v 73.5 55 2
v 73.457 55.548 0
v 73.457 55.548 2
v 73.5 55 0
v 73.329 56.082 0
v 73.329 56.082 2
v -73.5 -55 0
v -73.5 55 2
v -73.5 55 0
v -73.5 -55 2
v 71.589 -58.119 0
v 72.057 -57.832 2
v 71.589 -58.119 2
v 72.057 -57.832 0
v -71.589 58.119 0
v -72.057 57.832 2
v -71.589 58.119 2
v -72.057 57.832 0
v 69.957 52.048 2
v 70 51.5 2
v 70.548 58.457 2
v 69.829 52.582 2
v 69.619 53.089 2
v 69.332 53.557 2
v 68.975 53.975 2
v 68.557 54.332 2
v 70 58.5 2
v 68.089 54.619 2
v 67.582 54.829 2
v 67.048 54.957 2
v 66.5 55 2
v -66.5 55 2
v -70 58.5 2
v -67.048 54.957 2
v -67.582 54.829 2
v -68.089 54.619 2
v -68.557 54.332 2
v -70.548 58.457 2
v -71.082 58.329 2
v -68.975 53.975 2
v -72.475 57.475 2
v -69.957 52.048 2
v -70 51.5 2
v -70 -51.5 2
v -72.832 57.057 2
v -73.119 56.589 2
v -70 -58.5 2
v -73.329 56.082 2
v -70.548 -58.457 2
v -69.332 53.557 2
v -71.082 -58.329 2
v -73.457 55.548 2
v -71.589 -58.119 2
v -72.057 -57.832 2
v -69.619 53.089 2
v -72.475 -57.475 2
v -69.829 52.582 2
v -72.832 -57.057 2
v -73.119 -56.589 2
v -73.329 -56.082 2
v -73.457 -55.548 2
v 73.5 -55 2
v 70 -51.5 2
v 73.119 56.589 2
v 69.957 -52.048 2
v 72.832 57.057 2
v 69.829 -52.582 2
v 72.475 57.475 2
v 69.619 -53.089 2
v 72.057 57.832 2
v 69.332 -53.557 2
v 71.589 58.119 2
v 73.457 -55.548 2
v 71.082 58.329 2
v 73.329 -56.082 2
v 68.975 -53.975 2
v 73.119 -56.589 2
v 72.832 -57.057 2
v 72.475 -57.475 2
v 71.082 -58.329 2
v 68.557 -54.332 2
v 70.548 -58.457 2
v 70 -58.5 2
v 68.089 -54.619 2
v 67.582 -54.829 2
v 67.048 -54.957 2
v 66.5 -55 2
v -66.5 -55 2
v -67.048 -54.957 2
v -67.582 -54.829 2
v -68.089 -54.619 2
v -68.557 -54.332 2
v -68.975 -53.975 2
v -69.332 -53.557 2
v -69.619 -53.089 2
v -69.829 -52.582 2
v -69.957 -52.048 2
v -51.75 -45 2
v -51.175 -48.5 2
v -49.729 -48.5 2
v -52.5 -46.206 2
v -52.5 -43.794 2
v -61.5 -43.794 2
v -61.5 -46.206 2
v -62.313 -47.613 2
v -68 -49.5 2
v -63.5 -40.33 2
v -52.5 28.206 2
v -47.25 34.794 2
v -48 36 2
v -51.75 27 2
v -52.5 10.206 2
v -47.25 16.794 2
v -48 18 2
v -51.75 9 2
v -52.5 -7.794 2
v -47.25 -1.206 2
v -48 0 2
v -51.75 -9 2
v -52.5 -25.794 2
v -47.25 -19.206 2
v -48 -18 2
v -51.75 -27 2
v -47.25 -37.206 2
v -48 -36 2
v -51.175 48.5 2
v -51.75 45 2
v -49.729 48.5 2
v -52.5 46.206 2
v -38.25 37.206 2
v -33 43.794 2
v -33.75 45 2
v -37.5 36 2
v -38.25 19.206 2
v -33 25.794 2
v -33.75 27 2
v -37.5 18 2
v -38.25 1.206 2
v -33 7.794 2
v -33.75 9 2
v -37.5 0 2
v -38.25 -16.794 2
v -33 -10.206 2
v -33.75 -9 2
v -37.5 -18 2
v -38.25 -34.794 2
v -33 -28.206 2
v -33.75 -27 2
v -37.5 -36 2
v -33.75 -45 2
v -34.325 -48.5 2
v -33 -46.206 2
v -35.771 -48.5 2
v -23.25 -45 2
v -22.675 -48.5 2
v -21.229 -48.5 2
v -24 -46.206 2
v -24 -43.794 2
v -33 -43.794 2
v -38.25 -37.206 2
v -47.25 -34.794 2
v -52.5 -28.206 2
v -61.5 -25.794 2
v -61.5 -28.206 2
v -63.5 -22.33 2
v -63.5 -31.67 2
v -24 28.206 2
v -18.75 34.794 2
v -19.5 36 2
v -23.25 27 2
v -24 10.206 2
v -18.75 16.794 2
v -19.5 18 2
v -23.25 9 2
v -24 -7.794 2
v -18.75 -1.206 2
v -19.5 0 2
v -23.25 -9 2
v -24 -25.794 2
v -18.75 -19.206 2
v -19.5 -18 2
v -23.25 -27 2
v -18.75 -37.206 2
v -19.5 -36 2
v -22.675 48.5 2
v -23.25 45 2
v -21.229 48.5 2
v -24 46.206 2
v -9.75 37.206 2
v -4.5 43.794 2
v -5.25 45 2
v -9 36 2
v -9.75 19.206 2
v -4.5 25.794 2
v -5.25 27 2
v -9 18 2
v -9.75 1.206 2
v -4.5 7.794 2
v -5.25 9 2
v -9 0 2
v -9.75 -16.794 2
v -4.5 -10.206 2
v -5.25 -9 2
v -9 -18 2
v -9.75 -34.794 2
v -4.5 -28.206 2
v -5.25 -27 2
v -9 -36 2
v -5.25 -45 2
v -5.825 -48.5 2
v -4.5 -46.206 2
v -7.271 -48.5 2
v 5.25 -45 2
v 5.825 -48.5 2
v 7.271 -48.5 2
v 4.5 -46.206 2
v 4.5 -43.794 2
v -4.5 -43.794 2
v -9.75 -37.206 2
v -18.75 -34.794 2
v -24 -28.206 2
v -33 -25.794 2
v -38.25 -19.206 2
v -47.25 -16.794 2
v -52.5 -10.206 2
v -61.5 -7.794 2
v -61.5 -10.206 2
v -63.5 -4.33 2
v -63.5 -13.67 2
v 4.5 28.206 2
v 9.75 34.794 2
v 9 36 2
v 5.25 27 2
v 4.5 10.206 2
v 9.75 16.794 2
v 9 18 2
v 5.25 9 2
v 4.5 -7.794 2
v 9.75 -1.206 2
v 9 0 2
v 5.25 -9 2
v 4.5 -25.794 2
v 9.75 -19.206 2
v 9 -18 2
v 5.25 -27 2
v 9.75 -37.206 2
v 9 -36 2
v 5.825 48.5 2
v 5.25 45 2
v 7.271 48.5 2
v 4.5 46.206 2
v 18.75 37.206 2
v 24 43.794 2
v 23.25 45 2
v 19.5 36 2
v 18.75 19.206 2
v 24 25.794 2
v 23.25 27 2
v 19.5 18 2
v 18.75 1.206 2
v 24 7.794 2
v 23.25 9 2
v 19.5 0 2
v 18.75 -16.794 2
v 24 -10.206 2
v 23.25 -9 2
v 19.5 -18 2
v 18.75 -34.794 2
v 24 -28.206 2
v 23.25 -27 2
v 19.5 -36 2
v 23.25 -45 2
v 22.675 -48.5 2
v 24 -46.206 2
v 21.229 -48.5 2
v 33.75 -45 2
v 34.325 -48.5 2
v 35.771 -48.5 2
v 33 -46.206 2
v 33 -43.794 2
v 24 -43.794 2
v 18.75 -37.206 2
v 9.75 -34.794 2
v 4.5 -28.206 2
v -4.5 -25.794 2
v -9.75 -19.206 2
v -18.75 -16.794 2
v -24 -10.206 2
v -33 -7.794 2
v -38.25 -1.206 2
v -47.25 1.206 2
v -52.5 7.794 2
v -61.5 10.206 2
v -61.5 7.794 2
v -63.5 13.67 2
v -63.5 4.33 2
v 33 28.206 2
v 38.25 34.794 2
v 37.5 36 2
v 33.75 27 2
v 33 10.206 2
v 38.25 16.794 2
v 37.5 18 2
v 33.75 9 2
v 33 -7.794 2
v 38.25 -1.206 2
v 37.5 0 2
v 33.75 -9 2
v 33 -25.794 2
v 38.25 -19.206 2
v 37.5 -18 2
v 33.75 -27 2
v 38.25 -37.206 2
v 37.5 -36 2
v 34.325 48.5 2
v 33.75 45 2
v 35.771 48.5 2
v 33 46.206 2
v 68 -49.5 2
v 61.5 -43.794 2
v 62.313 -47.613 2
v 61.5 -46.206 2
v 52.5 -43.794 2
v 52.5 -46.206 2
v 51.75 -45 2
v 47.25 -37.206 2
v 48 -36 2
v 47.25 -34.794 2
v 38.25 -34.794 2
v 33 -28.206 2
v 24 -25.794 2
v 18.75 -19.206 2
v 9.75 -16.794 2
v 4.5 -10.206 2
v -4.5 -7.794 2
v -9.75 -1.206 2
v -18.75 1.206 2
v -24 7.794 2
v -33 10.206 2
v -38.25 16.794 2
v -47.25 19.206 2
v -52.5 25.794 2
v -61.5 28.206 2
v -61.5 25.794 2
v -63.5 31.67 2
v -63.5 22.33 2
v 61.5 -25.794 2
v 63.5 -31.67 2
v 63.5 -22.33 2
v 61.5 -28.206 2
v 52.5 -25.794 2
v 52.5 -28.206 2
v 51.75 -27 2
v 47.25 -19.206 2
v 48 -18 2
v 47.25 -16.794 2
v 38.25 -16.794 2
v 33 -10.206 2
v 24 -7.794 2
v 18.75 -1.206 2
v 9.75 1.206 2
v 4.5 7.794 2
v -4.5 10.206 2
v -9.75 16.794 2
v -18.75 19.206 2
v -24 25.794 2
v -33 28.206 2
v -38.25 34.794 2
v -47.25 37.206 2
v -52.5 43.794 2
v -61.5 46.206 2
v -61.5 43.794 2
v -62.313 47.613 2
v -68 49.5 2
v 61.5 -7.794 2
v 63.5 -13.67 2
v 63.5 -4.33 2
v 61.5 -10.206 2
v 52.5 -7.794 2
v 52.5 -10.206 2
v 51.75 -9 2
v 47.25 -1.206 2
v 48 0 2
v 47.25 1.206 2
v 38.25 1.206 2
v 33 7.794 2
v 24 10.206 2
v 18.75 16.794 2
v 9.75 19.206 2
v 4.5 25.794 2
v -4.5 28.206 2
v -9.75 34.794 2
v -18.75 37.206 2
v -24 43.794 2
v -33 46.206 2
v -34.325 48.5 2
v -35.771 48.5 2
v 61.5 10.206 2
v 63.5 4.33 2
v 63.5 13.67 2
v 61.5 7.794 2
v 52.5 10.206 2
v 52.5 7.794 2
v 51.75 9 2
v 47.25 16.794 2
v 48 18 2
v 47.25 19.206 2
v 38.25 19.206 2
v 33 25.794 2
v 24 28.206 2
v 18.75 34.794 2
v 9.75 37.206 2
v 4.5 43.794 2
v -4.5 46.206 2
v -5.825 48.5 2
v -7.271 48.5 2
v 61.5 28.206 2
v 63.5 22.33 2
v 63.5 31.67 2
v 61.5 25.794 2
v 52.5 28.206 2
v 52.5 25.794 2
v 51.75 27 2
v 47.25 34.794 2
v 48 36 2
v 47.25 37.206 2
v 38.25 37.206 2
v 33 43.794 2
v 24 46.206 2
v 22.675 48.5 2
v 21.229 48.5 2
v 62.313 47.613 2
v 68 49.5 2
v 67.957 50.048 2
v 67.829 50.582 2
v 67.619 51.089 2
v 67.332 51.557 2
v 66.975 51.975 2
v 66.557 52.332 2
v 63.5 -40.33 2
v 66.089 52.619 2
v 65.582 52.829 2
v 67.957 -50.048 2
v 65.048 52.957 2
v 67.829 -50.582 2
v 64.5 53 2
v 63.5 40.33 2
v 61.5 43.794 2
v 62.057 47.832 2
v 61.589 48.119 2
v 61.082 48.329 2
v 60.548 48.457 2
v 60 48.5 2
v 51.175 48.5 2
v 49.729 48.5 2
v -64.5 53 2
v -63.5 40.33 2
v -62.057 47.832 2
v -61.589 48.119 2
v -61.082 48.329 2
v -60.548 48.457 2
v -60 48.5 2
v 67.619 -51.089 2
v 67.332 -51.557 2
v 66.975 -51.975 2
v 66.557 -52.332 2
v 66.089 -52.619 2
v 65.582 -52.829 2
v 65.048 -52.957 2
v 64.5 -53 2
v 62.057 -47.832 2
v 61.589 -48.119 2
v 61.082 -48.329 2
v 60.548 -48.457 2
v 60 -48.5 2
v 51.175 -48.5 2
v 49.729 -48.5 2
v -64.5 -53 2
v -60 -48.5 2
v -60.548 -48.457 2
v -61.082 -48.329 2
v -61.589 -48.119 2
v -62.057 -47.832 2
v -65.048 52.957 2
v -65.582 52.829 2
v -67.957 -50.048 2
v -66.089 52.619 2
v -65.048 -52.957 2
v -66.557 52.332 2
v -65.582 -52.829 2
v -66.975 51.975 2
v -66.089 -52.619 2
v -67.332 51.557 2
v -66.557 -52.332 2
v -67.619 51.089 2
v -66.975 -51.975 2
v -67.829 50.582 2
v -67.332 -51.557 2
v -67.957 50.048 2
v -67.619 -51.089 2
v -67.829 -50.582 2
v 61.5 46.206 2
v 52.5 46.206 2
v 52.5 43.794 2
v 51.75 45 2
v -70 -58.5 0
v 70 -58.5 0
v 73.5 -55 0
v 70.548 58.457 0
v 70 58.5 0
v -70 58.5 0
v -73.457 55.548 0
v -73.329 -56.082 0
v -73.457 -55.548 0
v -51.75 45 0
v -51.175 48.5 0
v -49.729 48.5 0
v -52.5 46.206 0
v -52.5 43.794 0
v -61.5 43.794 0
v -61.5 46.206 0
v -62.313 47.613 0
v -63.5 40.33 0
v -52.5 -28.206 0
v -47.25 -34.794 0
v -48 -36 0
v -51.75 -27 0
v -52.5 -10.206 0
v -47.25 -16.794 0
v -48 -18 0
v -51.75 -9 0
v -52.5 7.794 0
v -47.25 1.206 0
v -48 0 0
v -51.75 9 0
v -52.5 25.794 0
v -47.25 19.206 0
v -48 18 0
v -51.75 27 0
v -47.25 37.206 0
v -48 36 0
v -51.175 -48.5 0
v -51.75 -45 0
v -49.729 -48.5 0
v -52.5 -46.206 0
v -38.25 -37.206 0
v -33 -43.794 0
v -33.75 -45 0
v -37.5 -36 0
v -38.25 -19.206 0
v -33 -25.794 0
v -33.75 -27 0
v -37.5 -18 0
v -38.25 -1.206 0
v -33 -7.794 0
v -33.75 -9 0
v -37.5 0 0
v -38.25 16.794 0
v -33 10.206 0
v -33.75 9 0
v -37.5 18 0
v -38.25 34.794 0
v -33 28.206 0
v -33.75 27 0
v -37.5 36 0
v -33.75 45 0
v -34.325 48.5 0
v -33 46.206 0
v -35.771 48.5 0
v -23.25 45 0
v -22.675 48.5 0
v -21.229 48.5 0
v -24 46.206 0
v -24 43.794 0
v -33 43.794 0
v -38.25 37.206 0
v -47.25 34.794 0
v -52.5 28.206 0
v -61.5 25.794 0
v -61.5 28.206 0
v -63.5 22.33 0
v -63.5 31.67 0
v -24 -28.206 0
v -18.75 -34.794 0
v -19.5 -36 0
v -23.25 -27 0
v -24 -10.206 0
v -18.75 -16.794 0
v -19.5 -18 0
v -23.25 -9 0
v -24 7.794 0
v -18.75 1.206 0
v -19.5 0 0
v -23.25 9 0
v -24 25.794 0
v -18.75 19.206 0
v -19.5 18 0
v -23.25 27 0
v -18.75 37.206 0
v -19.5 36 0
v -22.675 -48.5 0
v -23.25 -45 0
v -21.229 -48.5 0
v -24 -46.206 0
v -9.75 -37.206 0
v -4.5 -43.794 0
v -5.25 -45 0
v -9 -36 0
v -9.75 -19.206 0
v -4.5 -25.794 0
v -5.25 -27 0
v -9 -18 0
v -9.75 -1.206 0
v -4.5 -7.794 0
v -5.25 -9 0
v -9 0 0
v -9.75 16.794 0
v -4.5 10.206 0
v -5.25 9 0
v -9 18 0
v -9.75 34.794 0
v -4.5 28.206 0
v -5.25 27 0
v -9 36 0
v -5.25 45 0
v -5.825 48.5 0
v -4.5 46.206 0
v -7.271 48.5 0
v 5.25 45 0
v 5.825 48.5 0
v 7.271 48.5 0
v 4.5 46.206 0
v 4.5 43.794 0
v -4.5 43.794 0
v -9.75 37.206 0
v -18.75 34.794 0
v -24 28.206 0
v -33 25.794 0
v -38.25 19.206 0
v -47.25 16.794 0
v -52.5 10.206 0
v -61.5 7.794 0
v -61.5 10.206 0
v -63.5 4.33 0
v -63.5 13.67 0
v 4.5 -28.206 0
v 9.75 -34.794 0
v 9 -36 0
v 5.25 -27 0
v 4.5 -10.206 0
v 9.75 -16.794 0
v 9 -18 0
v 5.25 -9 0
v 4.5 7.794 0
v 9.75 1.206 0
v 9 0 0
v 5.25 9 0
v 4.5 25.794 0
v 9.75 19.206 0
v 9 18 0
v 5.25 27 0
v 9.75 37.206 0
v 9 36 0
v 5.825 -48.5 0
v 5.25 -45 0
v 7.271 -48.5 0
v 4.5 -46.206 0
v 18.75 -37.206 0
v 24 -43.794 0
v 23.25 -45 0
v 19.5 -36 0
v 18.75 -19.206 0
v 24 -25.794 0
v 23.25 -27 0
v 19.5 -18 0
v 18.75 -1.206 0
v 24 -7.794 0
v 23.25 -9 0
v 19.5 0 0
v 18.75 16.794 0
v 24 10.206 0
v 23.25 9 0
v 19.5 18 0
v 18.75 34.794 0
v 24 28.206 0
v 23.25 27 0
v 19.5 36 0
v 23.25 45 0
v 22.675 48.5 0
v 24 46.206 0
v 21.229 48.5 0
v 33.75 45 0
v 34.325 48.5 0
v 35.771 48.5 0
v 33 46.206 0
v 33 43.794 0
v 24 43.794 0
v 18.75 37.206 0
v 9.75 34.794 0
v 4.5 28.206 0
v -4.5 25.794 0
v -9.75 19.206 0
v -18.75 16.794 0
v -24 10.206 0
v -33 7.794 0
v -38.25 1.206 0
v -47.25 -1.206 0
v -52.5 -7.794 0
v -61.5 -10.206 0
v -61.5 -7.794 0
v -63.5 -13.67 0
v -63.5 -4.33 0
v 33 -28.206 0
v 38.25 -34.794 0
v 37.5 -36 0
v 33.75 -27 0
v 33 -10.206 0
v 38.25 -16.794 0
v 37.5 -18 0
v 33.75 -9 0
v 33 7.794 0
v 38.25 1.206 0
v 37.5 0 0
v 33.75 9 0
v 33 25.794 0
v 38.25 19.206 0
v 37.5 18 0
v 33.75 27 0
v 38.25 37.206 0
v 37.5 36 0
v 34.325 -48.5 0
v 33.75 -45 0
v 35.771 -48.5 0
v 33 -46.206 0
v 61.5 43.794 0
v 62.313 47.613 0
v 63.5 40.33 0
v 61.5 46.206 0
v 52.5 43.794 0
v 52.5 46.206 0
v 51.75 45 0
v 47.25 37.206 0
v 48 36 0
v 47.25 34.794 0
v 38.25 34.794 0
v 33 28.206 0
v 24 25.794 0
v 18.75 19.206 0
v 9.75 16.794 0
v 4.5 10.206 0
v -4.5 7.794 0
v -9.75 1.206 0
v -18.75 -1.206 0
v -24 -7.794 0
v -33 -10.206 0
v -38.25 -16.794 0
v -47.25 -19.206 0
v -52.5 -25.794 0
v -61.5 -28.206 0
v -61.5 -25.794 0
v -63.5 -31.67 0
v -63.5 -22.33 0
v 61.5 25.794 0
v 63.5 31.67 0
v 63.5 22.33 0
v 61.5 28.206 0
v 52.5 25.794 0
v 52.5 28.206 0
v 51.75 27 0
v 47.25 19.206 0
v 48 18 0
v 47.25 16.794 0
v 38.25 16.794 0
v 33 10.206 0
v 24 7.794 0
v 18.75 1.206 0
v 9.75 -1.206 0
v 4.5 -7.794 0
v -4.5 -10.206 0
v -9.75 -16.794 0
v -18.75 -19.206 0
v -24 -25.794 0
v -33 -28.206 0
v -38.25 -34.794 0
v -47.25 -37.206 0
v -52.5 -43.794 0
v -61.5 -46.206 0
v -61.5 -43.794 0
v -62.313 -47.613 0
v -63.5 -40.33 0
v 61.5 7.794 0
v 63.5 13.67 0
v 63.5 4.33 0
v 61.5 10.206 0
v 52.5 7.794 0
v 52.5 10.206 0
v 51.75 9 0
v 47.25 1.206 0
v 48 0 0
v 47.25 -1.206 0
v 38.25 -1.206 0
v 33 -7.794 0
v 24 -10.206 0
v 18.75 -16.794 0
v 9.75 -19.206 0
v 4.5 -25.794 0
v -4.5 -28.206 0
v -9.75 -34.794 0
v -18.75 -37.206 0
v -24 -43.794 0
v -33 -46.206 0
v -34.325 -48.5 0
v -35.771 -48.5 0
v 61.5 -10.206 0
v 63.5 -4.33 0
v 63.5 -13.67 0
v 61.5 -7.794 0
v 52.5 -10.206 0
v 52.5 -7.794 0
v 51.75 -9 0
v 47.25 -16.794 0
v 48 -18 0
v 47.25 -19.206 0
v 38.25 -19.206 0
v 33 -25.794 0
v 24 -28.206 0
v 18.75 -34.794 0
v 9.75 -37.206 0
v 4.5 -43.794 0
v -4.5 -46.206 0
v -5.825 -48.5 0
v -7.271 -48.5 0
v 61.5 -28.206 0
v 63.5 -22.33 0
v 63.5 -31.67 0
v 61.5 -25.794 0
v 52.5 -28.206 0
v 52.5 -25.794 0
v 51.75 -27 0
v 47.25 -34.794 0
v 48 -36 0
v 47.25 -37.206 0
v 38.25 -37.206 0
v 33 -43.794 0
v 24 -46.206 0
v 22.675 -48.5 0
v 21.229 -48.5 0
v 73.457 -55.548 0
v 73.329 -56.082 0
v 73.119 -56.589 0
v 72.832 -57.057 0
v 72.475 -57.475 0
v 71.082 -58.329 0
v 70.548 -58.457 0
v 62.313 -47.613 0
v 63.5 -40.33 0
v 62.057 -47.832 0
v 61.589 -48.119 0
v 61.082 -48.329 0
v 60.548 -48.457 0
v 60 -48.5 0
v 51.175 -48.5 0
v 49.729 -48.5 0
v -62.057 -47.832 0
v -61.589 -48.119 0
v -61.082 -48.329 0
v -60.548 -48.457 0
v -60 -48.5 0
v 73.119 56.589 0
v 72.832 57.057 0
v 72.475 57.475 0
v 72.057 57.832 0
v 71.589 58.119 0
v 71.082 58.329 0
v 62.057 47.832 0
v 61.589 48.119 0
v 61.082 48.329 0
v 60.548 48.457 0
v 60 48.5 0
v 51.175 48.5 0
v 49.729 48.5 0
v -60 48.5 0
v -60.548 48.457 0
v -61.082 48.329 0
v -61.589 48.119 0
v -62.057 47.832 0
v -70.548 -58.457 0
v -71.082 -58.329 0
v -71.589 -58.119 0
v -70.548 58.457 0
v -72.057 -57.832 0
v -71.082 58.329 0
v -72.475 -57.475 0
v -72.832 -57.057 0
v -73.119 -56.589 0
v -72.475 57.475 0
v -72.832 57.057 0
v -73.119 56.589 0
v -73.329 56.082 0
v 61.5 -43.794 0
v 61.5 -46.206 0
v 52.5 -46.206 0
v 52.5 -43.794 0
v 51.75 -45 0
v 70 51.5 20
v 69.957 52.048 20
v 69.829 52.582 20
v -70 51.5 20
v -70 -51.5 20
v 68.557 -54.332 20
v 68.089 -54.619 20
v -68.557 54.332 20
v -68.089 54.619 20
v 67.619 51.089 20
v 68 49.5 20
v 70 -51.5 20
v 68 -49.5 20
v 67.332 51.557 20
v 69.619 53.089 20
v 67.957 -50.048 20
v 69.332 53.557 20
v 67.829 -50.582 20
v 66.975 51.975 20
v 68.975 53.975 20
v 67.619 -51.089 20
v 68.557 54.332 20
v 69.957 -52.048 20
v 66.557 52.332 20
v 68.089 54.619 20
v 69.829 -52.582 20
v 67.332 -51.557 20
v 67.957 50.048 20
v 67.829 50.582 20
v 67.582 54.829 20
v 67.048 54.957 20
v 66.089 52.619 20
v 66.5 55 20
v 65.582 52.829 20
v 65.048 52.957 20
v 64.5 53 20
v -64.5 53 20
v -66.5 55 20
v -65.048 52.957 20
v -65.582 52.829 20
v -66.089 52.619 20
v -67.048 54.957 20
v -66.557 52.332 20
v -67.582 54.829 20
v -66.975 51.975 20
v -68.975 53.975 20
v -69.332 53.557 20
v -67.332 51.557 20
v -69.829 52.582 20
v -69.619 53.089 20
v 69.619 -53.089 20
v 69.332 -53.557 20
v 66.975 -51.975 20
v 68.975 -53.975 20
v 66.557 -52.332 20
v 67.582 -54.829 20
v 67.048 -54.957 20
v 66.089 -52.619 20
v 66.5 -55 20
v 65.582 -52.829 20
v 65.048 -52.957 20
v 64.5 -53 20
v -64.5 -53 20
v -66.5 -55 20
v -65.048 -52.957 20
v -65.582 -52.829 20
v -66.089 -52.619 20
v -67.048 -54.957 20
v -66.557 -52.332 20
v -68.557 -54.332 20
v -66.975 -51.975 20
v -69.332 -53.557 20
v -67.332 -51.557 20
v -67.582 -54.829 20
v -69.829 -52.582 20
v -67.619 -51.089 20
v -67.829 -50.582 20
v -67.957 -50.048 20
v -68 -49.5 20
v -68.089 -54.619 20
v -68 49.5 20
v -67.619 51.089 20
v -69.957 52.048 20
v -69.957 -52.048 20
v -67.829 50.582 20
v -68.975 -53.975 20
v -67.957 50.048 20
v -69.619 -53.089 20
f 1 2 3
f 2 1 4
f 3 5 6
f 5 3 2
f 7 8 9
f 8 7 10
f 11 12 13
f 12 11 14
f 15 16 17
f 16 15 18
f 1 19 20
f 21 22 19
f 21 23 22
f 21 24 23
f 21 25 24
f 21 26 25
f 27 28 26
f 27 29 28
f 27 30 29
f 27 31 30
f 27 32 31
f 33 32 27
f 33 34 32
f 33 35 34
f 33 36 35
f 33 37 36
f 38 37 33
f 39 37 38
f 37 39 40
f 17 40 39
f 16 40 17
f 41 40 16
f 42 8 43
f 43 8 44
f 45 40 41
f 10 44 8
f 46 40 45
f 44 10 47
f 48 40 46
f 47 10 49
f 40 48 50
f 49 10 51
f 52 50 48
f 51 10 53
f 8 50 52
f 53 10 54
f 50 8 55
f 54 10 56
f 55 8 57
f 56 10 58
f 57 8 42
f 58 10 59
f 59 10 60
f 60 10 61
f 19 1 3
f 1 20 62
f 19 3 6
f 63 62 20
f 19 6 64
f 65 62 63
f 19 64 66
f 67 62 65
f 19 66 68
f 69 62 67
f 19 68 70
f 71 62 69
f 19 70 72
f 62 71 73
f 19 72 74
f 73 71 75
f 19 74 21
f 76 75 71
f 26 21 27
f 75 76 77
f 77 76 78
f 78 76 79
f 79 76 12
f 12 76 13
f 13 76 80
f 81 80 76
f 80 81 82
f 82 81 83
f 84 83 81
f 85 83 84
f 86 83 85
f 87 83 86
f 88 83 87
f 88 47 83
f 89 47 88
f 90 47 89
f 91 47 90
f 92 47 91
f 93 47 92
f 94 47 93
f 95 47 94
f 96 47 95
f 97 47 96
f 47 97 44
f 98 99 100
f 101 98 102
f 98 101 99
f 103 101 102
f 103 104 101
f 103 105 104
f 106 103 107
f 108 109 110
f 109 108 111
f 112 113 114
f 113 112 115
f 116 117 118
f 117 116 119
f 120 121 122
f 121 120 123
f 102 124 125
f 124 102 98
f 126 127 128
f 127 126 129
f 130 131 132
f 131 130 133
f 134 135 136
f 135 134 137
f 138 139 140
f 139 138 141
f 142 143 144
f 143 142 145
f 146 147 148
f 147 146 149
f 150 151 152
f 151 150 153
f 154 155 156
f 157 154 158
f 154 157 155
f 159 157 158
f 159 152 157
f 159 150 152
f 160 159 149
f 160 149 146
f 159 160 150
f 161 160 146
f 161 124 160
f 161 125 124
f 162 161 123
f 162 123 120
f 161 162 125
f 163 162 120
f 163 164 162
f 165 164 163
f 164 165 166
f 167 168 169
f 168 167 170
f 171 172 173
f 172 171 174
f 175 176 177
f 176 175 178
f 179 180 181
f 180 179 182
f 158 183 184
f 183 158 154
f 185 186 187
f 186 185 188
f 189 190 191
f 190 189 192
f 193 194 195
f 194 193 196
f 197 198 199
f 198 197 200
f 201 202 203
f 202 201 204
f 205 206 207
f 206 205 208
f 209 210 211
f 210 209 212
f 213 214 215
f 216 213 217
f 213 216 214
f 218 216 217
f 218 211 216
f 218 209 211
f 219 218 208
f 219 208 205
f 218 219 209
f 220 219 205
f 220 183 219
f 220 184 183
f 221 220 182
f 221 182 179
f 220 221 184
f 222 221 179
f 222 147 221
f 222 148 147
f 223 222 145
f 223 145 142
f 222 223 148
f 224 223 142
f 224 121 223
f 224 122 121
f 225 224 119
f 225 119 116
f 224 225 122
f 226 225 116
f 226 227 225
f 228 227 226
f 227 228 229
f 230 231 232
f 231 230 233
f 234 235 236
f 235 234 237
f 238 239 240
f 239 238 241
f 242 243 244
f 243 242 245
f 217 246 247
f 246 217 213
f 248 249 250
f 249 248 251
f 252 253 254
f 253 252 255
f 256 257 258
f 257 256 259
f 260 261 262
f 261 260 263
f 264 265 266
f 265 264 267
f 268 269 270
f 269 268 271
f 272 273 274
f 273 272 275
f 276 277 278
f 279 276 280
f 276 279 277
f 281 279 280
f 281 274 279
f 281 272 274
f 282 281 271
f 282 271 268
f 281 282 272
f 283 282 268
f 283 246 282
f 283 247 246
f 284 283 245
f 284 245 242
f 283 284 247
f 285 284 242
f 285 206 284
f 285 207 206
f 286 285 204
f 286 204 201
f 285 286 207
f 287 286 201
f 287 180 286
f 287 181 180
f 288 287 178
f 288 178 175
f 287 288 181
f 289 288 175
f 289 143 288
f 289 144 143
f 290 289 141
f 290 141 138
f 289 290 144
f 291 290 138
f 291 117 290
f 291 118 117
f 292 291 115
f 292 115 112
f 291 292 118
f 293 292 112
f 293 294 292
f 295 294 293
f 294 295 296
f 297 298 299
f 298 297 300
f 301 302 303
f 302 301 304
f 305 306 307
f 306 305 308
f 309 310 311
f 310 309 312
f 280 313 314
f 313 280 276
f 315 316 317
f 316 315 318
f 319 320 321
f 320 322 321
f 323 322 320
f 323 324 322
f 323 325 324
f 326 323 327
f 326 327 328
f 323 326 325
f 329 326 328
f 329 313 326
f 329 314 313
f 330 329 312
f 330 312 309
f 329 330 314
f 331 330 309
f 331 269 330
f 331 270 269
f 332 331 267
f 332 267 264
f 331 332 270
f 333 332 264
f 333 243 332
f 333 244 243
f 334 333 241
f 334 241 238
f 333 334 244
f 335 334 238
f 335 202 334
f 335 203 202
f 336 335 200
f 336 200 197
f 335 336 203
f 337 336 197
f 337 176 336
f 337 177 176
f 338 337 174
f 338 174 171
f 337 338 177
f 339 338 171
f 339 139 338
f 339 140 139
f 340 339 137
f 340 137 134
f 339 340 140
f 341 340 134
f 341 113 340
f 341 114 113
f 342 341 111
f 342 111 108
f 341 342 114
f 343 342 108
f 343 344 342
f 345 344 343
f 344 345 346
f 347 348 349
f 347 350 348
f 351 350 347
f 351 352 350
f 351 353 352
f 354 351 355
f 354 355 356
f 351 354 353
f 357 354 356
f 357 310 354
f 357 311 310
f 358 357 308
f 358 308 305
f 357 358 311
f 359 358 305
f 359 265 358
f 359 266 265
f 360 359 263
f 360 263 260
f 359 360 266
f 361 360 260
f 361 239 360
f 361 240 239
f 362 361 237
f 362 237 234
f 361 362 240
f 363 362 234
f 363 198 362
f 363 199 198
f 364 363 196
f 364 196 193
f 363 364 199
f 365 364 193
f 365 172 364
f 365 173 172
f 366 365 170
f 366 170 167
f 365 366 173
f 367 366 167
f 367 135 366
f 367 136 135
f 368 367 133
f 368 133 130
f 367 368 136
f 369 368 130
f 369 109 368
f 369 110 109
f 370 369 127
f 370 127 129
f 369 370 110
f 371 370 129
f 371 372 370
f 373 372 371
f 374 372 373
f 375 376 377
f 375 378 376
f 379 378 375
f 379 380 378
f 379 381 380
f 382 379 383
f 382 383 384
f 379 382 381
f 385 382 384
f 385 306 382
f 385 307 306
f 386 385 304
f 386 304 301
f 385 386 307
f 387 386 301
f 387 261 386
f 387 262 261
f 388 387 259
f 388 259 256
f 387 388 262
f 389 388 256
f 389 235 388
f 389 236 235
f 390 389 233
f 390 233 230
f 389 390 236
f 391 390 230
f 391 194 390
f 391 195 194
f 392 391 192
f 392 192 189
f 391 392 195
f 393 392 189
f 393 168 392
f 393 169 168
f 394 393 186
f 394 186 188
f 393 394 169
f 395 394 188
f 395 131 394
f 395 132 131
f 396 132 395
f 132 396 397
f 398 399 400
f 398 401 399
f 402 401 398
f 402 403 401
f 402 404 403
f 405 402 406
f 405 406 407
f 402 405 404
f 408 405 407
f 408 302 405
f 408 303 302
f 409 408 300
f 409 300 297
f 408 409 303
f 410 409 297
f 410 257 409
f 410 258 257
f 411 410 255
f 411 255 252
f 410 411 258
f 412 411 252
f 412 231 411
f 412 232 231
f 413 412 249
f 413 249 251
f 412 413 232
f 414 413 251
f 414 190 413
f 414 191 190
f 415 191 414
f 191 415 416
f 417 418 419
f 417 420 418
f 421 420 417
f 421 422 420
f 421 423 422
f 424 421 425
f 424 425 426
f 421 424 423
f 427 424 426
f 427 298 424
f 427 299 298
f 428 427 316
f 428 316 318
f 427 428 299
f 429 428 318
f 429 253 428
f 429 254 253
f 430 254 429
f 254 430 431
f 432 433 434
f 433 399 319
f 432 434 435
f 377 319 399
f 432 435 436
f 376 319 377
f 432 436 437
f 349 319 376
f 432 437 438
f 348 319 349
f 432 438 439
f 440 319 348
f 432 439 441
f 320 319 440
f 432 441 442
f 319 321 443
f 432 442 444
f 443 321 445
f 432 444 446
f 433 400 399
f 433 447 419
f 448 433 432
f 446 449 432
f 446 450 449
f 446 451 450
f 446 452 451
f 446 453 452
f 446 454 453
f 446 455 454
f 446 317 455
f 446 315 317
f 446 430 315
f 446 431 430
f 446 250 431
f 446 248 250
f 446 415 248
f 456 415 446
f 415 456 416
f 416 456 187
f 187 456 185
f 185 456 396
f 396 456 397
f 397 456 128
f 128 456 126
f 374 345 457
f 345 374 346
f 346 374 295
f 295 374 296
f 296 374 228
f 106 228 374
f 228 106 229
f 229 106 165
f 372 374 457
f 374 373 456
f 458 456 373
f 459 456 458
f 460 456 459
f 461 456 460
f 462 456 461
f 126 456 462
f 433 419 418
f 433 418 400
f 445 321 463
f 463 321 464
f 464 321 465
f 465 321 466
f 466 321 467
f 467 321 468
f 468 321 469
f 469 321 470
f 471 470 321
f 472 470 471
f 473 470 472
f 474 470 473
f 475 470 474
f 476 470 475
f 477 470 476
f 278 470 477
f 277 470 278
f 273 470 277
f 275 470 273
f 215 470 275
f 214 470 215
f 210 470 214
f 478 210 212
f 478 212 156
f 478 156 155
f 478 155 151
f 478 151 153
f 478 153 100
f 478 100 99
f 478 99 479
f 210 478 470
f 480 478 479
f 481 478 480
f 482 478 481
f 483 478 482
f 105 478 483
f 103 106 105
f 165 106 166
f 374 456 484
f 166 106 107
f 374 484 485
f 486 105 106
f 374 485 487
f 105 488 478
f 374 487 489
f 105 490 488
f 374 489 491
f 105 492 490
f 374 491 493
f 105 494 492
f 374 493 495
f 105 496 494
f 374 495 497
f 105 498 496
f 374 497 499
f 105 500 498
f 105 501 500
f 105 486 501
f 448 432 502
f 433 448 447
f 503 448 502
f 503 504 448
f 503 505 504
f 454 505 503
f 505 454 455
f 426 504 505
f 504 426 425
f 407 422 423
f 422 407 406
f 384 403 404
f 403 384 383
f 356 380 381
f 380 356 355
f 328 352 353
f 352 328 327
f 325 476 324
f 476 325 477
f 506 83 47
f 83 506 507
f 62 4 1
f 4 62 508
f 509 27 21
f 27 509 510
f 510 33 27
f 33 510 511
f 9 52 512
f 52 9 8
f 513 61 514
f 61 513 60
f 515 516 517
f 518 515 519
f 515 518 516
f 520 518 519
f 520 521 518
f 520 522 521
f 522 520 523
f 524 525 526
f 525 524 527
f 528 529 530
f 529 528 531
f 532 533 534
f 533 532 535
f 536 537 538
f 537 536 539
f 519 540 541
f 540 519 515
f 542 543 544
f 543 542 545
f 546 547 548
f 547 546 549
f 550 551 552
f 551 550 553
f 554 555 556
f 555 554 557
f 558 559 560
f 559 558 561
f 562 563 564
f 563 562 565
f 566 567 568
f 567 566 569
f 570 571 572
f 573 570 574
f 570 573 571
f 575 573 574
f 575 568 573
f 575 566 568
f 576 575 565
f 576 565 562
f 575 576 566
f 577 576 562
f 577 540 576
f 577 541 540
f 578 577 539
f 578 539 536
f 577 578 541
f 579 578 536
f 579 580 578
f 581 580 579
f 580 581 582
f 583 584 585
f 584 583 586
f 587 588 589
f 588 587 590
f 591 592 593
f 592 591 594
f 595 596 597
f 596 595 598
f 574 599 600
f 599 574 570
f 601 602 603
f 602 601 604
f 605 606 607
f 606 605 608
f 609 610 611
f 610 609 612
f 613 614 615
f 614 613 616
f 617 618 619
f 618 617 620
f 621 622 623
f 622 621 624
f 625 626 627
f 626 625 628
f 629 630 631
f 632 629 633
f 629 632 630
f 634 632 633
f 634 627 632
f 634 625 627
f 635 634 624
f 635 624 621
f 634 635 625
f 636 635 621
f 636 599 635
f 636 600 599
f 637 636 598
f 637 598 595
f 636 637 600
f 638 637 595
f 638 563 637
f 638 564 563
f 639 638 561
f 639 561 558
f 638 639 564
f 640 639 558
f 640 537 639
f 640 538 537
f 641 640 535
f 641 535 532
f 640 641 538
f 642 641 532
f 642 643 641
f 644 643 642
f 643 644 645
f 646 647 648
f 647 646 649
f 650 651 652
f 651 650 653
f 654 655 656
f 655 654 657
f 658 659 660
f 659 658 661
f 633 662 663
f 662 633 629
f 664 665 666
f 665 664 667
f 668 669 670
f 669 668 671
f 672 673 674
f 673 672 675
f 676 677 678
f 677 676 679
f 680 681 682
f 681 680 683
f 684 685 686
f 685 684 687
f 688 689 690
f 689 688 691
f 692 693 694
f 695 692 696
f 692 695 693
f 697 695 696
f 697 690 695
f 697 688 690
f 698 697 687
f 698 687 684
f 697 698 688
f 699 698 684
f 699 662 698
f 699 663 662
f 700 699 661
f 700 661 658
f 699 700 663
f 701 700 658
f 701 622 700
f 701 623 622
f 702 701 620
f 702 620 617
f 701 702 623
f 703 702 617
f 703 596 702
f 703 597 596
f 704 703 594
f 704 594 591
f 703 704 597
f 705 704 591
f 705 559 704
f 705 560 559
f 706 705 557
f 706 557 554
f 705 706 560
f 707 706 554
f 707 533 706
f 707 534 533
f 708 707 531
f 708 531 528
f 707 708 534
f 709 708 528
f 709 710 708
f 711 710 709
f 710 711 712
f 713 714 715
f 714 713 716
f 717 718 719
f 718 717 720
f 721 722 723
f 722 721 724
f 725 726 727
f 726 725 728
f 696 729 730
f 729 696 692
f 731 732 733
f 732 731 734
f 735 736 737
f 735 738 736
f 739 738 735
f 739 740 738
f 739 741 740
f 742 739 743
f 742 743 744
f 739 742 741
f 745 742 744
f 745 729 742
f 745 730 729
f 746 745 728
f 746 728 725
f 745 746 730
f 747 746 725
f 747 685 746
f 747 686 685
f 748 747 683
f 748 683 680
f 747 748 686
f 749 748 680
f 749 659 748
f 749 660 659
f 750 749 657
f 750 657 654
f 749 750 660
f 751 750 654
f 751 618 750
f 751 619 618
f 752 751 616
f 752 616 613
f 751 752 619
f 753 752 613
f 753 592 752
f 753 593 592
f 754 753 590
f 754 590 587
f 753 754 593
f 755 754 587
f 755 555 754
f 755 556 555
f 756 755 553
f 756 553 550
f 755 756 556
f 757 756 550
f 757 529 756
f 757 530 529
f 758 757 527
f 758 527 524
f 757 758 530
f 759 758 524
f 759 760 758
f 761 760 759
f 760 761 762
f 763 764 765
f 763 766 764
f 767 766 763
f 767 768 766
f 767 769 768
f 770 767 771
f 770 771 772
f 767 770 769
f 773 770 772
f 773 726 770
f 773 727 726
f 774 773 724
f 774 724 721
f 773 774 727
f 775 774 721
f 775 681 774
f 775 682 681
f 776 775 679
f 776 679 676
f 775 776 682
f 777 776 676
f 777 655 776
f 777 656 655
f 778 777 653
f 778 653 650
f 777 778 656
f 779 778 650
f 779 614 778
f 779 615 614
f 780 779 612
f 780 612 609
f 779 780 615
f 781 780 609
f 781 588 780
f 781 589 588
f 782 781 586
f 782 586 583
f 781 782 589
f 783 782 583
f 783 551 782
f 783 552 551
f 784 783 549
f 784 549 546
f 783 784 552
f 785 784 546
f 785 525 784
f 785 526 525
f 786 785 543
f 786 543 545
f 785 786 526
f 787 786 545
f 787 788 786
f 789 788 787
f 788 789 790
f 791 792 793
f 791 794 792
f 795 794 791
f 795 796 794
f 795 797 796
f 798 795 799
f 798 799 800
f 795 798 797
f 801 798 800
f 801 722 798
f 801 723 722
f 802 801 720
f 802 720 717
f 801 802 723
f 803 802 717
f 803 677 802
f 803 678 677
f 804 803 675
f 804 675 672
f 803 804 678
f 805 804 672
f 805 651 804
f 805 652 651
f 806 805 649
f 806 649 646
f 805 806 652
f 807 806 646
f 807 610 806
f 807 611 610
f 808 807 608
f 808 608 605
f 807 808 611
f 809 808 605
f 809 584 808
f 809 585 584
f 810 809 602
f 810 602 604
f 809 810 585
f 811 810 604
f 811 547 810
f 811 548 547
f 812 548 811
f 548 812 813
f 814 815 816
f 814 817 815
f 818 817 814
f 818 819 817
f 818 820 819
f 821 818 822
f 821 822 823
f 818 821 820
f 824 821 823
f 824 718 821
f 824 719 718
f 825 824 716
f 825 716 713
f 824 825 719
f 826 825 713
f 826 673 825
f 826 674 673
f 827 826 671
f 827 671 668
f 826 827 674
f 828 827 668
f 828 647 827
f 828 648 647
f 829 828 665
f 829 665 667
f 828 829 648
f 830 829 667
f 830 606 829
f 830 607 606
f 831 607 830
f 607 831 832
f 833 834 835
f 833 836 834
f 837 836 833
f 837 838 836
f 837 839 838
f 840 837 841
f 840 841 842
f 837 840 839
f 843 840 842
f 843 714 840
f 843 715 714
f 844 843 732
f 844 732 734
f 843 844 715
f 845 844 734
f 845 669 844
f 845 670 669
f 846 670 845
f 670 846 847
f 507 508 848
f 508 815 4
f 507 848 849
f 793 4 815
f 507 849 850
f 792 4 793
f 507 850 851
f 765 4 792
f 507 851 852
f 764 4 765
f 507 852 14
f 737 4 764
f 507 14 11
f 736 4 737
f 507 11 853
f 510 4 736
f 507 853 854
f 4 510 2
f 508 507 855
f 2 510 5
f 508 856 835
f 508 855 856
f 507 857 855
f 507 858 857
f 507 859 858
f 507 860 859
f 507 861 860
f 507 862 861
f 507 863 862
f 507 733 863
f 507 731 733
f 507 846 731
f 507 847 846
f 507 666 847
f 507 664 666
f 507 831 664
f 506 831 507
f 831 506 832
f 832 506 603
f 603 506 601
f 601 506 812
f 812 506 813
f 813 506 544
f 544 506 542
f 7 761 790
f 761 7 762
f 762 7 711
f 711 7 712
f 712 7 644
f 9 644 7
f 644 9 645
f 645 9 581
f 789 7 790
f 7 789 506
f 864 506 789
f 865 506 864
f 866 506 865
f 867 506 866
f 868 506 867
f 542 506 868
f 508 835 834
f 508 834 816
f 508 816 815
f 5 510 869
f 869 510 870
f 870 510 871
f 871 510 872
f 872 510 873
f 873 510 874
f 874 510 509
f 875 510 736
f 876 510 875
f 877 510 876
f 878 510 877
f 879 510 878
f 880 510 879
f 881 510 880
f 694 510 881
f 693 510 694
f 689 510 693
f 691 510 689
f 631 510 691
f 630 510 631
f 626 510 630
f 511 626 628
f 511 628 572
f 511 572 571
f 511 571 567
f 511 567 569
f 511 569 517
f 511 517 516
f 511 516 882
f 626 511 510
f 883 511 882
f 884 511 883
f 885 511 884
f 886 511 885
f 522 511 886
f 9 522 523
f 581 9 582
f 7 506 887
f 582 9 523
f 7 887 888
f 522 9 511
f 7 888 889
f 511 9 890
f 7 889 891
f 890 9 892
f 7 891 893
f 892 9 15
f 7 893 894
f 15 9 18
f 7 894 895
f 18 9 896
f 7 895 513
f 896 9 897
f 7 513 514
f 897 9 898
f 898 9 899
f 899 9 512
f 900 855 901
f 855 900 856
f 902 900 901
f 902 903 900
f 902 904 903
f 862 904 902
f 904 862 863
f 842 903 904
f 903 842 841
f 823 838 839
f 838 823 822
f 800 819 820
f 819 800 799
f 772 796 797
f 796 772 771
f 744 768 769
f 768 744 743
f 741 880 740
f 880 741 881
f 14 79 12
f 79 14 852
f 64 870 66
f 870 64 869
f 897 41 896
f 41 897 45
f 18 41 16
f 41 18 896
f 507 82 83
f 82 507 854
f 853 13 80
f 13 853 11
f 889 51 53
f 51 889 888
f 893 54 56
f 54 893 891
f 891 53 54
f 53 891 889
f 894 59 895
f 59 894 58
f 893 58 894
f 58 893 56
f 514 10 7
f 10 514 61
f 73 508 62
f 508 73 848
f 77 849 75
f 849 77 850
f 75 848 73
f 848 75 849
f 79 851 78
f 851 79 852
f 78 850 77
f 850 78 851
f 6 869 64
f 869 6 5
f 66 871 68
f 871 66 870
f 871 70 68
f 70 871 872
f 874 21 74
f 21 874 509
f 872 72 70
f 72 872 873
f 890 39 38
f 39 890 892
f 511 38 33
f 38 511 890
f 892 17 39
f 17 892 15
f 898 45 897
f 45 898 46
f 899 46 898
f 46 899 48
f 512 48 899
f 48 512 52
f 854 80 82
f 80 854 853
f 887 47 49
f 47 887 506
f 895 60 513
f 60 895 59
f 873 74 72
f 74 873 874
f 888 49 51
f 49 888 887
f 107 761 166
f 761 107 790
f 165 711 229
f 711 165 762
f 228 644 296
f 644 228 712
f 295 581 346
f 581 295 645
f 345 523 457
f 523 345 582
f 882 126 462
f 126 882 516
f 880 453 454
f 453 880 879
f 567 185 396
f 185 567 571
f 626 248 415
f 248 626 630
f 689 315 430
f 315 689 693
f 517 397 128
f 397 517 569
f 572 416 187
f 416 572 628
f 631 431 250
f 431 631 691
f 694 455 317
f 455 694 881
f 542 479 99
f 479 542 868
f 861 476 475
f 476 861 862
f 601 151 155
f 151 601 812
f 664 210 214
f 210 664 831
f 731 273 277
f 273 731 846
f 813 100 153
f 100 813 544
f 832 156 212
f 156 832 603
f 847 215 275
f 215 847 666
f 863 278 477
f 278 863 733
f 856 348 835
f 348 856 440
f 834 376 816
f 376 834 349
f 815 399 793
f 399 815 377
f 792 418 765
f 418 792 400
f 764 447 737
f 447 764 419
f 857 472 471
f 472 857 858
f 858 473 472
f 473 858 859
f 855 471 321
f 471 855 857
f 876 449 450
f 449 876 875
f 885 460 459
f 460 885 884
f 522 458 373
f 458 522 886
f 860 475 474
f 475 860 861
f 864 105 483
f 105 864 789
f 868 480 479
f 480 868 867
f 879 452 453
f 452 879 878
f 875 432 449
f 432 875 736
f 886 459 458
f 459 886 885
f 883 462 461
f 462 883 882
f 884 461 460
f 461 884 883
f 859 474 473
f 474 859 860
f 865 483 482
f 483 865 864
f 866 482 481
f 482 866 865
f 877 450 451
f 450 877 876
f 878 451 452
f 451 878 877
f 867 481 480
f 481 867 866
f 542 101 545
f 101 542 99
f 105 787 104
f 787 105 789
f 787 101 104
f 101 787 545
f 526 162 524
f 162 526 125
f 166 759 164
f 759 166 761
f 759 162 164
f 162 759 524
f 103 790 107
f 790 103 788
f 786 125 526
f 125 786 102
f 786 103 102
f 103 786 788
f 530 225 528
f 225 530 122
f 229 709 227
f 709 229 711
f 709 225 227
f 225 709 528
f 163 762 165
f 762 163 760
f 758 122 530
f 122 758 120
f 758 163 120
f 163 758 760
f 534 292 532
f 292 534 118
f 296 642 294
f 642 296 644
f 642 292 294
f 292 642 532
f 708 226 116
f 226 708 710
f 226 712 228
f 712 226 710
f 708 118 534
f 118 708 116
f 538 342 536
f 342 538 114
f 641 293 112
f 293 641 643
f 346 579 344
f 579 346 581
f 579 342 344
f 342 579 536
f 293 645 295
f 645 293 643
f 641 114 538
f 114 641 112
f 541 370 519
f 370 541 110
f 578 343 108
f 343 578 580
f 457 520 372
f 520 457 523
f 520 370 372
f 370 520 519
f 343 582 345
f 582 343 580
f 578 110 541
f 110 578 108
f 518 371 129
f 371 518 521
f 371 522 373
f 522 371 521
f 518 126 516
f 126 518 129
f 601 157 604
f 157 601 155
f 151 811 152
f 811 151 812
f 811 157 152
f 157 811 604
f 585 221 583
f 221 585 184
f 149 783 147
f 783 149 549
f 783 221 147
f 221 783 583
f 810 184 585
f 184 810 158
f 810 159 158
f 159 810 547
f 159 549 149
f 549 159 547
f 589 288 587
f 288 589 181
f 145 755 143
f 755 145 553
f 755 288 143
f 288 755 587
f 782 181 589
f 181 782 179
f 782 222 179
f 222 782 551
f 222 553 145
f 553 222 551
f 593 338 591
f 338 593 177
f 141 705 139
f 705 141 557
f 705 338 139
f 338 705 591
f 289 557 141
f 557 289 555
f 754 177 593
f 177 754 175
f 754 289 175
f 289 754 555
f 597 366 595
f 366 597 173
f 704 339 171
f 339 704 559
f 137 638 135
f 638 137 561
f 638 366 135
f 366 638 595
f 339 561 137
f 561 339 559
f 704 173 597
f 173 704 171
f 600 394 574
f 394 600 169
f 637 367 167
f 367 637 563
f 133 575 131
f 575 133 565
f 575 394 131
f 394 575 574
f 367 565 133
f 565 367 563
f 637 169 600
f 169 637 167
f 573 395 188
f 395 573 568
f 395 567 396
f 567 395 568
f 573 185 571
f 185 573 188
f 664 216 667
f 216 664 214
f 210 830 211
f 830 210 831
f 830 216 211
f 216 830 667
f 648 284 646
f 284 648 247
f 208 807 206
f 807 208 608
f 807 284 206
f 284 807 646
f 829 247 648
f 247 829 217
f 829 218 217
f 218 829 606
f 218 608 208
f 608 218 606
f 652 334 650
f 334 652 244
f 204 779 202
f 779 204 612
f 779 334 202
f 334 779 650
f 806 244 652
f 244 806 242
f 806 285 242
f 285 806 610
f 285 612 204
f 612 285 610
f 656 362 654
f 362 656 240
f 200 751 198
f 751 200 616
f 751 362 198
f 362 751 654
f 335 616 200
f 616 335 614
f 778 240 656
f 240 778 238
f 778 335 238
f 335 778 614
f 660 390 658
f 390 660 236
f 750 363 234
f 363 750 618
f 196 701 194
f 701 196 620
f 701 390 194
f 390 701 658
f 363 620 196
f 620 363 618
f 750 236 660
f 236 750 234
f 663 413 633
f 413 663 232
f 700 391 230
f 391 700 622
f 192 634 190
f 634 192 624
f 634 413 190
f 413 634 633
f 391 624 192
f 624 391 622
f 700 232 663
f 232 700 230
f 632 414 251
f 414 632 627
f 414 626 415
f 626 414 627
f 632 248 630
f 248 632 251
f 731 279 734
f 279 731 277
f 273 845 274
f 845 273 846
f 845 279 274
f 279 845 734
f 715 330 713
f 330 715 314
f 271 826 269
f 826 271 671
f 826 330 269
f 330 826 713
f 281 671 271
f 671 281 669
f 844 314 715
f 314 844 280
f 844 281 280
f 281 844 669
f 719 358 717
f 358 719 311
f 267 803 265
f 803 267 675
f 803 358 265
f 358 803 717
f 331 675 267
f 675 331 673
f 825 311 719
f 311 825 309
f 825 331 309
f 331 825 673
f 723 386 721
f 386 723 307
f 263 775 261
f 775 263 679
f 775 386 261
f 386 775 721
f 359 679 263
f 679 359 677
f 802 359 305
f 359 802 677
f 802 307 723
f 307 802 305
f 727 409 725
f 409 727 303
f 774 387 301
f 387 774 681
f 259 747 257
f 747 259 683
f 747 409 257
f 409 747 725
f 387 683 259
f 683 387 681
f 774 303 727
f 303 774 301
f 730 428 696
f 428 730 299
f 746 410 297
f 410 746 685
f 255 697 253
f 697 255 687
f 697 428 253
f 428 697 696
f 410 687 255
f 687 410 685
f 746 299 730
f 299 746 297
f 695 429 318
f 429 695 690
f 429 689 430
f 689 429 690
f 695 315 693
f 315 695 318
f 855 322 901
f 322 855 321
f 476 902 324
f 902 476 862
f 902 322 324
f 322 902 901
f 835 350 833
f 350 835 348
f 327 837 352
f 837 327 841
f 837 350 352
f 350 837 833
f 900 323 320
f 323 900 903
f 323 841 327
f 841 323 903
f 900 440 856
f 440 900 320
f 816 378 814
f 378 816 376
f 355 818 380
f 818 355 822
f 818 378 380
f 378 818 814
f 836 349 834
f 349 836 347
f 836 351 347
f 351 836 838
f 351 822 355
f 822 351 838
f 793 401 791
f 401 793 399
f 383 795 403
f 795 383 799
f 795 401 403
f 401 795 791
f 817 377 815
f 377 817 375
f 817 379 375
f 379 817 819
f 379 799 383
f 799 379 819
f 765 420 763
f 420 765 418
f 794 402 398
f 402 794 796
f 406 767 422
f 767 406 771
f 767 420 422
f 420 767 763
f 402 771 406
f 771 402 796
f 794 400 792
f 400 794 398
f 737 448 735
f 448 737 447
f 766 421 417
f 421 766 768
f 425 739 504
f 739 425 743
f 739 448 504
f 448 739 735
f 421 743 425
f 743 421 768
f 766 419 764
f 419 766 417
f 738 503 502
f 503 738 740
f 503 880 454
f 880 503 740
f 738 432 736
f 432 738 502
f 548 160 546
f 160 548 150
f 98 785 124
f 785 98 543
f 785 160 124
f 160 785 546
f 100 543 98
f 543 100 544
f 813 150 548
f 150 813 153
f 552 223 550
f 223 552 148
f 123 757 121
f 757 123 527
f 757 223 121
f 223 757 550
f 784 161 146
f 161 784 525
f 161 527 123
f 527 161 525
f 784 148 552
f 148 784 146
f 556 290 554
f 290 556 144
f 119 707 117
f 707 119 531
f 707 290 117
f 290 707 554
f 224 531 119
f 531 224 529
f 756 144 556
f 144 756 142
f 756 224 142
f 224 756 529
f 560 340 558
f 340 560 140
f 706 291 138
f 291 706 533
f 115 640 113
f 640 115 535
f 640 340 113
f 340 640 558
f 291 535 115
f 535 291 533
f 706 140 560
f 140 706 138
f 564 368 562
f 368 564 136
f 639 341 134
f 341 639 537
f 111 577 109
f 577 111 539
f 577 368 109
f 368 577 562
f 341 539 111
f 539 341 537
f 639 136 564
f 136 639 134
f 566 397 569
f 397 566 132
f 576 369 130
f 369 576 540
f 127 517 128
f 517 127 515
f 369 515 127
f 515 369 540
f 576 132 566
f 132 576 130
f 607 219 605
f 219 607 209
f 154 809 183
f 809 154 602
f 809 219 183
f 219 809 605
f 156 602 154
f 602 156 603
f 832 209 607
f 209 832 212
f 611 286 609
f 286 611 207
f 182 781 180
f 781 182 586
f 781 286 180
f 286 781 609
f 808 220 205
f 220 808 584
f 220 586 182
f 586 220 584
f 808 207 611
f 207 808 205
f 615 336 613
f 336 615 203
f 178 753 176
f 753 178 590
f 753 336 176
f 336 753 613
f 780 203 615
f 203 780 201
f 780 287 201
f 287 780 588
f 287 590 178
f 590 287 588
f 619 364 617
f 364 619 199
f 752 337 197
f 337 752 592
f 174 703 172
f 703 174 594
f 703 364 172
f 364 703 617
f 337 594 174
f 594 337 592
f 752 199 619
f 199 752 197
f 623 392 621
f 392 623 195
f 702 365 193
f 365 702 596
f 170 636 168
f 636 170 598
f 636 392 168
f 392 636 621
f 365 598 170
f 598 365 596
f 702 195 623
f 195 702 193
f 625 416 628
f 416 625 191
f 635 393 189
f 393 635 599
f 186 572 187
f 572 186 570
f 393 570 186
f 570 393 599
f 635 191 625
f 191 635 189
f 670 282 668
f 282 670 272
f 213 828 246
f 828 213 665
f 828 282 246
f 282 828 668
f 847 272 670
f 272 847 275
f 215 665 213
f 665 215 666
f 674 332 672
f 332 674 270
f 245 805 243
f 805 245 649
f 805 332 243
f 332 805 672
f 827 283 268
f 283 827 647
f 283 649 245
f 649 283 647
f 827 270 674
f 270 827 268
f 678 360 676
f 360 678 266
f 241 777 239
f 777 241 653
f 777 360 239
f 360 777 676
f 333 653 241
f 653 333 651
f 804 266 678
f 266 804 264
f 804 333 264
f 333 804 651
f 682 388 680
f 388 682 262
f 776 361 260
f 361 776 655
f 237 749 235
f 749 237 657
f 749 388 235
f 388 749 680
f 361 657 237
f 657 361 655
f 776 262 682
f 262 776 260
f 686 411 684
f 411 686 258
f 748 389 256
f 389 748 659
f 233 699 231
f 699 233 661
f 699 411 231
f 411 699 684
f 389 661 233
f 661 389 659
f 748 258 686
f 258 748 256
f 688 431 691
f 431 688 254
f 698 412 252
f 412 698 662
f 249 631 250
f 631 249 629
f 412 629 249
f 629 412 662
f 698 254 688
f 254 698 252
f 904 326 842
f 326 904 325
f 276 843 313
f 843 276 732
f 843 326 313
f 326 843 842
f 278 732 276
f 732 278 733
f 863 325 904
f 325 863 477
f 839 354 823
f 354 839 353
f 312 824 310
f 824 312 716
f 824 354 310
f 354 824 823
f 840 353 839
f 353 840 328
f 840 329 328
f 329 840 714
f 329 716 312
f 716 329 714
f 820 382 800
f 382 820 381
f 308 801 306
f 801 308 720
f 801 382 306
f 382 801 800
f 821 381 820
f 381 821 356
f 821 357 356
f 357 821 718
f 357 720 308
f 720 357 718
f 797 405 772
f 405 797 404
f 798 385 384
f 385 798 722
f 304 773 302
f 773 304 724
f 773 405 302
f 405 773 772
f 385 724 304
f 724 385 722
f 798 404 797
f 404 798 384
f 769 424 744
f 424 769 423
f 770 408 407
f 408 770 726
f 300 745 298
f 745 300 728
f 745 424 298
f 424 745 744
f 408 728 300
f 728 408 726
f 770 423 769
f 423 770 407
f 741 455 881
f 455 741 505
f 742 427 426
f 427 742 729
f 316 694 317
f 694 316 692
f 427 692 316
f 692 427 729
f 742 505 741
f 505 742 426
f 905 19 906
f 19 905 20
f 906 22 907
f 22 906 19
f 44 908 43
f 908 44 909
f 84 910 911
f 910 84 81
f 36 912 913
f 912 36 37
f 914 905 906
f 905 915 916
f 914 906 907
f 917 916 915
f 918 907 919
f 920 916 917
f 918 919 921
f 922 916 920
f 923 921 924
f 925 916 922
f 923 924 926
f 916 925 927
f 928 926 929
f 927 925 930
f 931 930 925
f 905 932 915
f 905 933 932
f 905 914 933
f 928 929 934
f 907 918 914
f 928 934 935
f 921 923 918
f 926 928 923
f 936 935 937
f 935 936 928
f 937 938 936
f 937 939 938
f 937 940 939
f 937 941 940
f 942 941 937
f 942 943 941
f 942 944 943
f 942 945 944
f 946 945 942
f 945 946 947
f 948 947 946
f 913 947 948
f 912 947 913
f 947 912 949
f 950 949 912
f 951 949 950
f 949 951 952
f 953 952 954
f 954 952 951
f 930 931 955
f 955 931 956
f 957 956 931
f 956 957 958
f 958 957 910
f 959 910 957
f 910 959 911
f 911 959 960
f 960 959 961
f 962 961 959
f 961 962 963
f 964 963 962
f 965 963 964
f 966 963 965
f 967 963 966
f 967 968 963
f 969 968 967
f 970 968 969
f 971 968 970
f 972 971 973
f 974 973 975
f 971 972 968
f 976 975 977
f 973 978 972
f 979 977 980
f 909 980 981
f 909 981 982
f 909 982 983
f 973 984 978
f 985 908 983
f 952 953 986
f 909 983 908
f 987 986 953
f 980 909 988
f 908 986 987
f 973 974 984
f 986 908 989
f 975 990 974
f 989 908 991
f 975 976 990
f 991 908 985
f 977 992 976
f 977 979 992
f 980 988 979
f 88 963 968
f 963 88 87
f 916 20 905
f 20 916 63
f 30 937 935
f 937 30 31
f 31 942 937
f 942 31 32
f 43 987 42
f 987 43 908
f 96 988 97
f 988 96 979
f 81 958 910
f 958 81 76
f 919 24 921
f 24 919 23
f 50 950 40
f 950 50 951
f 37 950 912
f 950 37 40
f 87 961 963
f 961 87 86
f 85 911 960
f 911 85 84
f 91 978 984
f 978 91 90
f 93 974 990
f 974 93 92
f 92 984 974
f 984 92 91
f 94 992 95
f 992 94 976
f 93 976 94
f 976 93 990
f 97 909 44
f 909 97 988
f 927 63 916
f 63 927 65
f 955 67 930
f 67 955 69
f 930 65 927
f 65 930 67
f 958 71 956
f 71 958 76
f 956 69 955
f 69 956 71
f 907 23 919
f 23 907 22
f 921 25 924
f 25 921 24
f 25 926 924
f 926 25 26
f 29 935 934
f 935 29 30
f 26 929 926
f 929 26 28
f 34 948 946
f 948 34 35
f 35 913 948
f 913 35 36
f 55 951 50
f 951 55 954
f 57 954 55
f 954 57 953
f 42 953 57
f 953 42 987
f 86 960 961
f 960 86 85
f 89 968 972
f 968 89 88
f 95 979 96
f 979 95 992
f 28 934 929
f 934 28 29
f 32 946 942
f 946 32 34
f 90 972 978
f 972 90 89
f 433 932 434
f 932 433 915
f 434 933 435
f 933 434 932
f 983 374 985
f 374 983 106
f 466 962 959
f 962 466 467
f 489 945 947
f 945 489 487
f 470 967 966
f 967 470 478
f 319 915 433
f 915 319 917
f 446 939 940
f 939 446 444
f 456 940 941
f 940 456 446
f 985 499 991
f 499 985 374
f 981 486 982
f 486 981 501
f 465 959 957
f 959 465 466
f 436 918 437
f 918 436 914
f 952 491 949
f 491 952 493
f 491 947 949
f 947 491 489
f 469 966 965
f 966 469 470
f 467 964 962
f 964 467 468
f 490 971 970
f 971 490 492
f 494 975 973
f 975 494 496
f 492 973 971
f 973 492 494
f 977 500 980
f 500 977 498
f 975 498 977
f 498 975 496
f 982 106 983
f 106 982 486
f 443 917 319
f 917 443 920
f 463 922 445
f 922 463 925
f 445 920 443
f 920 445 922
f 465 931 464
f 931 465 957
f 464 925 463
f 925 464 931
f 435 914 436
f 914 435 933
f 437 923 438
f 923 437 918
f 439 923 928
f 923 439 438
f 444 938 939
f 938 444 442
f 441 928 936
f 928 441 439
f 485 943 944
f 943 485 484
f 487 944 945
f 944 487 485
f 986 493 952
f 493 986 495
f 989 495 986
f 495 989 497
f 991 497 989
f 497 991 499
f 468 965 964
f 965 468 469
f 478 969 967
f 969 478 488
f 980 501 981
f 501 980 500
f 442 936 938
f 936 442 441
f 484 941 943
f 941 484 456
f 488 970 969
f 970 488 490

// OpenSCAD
// Width (inner size in mm)
width = 140; // [60:400]

// Depth (inner size in mm)
depth = 110;  // [60:300]

// Height
height = 20; // [10:1:100]

// Rim outer width in mm
rim_outer_width = 16; // [0:1:100]


// corner radius in mm
roundness = 4.5; // [0:0.1:15]
 

/* [Hidden] */
support_height = 30;
th=3.5;
grid_border = 10;
 

module round_cube(coords, r=0) {
        
    if (r<=0) {
        translate([0,0,coords[2]/2])
        cube(coords, center=true);
    } else {
    
        x = coords[0];
        y = coords[1];
        z = coords[2];
        hull() {
            translate([ x/2 - r,  y/2 - r]) cylinder(r=r, h=z);
            translate([-x/2 + r,  y/2 - r]) cylinder(r=r, h=z);
            translate([ x/2 - r, -y/2 + r]) cylinder(r=r, h=z);
            translate([-x/2 + r, -y/2 + r]) cylinder(r=r, h=z);
        }

    }
    
}



module grid_generator(grid_width,grid_depth,grid_parts=0,grid_gap=0.5) {

    
    border = grid_border;
    hex_d = 18;
    
    x_sep = 10.5;
    y_sep = 0;
    
    x_shift = x_sep + hex_d;
    y_shift = y_sep + hex_d;
    
    hlf_width = width/2;
    hlf_depth = depth/2;
    
        difference() {
            round_cube([grid_width-grid_gap*2, grid_depth-grid_gap*2, 2], roundness-1, $fn=40);
            translate([0,0,-1])
            round_cube([grid_width-grid_gap*2-border*2, grid_depth-grid_gap*2-border*2, 4], roundness-1, $fn=40);
        }
        
        
        difference() {
            translate([0,0,1])
            cube([grid_width-grid_gap*2-border*2, grid_depth-grid_gap*2-border*2, 2], center=true);
            
            x_steps = floor((hlf_width - border/2) / x_shift);
            y_steps = floor(hlf_depth / y_shift);
            
            for(x = [-x_steps : x_steps],
                y = [-y_steps : y_steps]) {
            
                translate([x_shift*x,y_shift*y,0])
                cylinder(d=hex_d, h=6, center=true, $fn=6);
            }
            
            alt_x_steps = floor((hlf_width - x_shift/2 - border/2) / x_shift);
            alt_y_steps = floor((hlf_depth - y_shift/2) / y_shift);
            
            for(x = [ -alt_x_steps - 1 : alt_x_steps ],
                y = [ -alt_y_steps - 1 : alt_y_steps ]) {
            
                translate([x_shift*x,y_shift*y,0])
                translate([x_shift/2,y_shift/2,0])
                cylinder(d=hex_d, h=6, center=true, $fn=6);      
            }
        }

}

module rim(width, depth, height, border) {
        difference() {
            round_cube([width,depth, height], roundness-1, $fn=40);
             translate([0,0,-1])
            round_cube([width-border*2, depth-border*2,height+2 ], roundness-1, $fn=40);
        }
}



 grid_generator(width+rim_outer_width/2, depth+rim_outer_width/2);

rim(width, depth, height, 2);
